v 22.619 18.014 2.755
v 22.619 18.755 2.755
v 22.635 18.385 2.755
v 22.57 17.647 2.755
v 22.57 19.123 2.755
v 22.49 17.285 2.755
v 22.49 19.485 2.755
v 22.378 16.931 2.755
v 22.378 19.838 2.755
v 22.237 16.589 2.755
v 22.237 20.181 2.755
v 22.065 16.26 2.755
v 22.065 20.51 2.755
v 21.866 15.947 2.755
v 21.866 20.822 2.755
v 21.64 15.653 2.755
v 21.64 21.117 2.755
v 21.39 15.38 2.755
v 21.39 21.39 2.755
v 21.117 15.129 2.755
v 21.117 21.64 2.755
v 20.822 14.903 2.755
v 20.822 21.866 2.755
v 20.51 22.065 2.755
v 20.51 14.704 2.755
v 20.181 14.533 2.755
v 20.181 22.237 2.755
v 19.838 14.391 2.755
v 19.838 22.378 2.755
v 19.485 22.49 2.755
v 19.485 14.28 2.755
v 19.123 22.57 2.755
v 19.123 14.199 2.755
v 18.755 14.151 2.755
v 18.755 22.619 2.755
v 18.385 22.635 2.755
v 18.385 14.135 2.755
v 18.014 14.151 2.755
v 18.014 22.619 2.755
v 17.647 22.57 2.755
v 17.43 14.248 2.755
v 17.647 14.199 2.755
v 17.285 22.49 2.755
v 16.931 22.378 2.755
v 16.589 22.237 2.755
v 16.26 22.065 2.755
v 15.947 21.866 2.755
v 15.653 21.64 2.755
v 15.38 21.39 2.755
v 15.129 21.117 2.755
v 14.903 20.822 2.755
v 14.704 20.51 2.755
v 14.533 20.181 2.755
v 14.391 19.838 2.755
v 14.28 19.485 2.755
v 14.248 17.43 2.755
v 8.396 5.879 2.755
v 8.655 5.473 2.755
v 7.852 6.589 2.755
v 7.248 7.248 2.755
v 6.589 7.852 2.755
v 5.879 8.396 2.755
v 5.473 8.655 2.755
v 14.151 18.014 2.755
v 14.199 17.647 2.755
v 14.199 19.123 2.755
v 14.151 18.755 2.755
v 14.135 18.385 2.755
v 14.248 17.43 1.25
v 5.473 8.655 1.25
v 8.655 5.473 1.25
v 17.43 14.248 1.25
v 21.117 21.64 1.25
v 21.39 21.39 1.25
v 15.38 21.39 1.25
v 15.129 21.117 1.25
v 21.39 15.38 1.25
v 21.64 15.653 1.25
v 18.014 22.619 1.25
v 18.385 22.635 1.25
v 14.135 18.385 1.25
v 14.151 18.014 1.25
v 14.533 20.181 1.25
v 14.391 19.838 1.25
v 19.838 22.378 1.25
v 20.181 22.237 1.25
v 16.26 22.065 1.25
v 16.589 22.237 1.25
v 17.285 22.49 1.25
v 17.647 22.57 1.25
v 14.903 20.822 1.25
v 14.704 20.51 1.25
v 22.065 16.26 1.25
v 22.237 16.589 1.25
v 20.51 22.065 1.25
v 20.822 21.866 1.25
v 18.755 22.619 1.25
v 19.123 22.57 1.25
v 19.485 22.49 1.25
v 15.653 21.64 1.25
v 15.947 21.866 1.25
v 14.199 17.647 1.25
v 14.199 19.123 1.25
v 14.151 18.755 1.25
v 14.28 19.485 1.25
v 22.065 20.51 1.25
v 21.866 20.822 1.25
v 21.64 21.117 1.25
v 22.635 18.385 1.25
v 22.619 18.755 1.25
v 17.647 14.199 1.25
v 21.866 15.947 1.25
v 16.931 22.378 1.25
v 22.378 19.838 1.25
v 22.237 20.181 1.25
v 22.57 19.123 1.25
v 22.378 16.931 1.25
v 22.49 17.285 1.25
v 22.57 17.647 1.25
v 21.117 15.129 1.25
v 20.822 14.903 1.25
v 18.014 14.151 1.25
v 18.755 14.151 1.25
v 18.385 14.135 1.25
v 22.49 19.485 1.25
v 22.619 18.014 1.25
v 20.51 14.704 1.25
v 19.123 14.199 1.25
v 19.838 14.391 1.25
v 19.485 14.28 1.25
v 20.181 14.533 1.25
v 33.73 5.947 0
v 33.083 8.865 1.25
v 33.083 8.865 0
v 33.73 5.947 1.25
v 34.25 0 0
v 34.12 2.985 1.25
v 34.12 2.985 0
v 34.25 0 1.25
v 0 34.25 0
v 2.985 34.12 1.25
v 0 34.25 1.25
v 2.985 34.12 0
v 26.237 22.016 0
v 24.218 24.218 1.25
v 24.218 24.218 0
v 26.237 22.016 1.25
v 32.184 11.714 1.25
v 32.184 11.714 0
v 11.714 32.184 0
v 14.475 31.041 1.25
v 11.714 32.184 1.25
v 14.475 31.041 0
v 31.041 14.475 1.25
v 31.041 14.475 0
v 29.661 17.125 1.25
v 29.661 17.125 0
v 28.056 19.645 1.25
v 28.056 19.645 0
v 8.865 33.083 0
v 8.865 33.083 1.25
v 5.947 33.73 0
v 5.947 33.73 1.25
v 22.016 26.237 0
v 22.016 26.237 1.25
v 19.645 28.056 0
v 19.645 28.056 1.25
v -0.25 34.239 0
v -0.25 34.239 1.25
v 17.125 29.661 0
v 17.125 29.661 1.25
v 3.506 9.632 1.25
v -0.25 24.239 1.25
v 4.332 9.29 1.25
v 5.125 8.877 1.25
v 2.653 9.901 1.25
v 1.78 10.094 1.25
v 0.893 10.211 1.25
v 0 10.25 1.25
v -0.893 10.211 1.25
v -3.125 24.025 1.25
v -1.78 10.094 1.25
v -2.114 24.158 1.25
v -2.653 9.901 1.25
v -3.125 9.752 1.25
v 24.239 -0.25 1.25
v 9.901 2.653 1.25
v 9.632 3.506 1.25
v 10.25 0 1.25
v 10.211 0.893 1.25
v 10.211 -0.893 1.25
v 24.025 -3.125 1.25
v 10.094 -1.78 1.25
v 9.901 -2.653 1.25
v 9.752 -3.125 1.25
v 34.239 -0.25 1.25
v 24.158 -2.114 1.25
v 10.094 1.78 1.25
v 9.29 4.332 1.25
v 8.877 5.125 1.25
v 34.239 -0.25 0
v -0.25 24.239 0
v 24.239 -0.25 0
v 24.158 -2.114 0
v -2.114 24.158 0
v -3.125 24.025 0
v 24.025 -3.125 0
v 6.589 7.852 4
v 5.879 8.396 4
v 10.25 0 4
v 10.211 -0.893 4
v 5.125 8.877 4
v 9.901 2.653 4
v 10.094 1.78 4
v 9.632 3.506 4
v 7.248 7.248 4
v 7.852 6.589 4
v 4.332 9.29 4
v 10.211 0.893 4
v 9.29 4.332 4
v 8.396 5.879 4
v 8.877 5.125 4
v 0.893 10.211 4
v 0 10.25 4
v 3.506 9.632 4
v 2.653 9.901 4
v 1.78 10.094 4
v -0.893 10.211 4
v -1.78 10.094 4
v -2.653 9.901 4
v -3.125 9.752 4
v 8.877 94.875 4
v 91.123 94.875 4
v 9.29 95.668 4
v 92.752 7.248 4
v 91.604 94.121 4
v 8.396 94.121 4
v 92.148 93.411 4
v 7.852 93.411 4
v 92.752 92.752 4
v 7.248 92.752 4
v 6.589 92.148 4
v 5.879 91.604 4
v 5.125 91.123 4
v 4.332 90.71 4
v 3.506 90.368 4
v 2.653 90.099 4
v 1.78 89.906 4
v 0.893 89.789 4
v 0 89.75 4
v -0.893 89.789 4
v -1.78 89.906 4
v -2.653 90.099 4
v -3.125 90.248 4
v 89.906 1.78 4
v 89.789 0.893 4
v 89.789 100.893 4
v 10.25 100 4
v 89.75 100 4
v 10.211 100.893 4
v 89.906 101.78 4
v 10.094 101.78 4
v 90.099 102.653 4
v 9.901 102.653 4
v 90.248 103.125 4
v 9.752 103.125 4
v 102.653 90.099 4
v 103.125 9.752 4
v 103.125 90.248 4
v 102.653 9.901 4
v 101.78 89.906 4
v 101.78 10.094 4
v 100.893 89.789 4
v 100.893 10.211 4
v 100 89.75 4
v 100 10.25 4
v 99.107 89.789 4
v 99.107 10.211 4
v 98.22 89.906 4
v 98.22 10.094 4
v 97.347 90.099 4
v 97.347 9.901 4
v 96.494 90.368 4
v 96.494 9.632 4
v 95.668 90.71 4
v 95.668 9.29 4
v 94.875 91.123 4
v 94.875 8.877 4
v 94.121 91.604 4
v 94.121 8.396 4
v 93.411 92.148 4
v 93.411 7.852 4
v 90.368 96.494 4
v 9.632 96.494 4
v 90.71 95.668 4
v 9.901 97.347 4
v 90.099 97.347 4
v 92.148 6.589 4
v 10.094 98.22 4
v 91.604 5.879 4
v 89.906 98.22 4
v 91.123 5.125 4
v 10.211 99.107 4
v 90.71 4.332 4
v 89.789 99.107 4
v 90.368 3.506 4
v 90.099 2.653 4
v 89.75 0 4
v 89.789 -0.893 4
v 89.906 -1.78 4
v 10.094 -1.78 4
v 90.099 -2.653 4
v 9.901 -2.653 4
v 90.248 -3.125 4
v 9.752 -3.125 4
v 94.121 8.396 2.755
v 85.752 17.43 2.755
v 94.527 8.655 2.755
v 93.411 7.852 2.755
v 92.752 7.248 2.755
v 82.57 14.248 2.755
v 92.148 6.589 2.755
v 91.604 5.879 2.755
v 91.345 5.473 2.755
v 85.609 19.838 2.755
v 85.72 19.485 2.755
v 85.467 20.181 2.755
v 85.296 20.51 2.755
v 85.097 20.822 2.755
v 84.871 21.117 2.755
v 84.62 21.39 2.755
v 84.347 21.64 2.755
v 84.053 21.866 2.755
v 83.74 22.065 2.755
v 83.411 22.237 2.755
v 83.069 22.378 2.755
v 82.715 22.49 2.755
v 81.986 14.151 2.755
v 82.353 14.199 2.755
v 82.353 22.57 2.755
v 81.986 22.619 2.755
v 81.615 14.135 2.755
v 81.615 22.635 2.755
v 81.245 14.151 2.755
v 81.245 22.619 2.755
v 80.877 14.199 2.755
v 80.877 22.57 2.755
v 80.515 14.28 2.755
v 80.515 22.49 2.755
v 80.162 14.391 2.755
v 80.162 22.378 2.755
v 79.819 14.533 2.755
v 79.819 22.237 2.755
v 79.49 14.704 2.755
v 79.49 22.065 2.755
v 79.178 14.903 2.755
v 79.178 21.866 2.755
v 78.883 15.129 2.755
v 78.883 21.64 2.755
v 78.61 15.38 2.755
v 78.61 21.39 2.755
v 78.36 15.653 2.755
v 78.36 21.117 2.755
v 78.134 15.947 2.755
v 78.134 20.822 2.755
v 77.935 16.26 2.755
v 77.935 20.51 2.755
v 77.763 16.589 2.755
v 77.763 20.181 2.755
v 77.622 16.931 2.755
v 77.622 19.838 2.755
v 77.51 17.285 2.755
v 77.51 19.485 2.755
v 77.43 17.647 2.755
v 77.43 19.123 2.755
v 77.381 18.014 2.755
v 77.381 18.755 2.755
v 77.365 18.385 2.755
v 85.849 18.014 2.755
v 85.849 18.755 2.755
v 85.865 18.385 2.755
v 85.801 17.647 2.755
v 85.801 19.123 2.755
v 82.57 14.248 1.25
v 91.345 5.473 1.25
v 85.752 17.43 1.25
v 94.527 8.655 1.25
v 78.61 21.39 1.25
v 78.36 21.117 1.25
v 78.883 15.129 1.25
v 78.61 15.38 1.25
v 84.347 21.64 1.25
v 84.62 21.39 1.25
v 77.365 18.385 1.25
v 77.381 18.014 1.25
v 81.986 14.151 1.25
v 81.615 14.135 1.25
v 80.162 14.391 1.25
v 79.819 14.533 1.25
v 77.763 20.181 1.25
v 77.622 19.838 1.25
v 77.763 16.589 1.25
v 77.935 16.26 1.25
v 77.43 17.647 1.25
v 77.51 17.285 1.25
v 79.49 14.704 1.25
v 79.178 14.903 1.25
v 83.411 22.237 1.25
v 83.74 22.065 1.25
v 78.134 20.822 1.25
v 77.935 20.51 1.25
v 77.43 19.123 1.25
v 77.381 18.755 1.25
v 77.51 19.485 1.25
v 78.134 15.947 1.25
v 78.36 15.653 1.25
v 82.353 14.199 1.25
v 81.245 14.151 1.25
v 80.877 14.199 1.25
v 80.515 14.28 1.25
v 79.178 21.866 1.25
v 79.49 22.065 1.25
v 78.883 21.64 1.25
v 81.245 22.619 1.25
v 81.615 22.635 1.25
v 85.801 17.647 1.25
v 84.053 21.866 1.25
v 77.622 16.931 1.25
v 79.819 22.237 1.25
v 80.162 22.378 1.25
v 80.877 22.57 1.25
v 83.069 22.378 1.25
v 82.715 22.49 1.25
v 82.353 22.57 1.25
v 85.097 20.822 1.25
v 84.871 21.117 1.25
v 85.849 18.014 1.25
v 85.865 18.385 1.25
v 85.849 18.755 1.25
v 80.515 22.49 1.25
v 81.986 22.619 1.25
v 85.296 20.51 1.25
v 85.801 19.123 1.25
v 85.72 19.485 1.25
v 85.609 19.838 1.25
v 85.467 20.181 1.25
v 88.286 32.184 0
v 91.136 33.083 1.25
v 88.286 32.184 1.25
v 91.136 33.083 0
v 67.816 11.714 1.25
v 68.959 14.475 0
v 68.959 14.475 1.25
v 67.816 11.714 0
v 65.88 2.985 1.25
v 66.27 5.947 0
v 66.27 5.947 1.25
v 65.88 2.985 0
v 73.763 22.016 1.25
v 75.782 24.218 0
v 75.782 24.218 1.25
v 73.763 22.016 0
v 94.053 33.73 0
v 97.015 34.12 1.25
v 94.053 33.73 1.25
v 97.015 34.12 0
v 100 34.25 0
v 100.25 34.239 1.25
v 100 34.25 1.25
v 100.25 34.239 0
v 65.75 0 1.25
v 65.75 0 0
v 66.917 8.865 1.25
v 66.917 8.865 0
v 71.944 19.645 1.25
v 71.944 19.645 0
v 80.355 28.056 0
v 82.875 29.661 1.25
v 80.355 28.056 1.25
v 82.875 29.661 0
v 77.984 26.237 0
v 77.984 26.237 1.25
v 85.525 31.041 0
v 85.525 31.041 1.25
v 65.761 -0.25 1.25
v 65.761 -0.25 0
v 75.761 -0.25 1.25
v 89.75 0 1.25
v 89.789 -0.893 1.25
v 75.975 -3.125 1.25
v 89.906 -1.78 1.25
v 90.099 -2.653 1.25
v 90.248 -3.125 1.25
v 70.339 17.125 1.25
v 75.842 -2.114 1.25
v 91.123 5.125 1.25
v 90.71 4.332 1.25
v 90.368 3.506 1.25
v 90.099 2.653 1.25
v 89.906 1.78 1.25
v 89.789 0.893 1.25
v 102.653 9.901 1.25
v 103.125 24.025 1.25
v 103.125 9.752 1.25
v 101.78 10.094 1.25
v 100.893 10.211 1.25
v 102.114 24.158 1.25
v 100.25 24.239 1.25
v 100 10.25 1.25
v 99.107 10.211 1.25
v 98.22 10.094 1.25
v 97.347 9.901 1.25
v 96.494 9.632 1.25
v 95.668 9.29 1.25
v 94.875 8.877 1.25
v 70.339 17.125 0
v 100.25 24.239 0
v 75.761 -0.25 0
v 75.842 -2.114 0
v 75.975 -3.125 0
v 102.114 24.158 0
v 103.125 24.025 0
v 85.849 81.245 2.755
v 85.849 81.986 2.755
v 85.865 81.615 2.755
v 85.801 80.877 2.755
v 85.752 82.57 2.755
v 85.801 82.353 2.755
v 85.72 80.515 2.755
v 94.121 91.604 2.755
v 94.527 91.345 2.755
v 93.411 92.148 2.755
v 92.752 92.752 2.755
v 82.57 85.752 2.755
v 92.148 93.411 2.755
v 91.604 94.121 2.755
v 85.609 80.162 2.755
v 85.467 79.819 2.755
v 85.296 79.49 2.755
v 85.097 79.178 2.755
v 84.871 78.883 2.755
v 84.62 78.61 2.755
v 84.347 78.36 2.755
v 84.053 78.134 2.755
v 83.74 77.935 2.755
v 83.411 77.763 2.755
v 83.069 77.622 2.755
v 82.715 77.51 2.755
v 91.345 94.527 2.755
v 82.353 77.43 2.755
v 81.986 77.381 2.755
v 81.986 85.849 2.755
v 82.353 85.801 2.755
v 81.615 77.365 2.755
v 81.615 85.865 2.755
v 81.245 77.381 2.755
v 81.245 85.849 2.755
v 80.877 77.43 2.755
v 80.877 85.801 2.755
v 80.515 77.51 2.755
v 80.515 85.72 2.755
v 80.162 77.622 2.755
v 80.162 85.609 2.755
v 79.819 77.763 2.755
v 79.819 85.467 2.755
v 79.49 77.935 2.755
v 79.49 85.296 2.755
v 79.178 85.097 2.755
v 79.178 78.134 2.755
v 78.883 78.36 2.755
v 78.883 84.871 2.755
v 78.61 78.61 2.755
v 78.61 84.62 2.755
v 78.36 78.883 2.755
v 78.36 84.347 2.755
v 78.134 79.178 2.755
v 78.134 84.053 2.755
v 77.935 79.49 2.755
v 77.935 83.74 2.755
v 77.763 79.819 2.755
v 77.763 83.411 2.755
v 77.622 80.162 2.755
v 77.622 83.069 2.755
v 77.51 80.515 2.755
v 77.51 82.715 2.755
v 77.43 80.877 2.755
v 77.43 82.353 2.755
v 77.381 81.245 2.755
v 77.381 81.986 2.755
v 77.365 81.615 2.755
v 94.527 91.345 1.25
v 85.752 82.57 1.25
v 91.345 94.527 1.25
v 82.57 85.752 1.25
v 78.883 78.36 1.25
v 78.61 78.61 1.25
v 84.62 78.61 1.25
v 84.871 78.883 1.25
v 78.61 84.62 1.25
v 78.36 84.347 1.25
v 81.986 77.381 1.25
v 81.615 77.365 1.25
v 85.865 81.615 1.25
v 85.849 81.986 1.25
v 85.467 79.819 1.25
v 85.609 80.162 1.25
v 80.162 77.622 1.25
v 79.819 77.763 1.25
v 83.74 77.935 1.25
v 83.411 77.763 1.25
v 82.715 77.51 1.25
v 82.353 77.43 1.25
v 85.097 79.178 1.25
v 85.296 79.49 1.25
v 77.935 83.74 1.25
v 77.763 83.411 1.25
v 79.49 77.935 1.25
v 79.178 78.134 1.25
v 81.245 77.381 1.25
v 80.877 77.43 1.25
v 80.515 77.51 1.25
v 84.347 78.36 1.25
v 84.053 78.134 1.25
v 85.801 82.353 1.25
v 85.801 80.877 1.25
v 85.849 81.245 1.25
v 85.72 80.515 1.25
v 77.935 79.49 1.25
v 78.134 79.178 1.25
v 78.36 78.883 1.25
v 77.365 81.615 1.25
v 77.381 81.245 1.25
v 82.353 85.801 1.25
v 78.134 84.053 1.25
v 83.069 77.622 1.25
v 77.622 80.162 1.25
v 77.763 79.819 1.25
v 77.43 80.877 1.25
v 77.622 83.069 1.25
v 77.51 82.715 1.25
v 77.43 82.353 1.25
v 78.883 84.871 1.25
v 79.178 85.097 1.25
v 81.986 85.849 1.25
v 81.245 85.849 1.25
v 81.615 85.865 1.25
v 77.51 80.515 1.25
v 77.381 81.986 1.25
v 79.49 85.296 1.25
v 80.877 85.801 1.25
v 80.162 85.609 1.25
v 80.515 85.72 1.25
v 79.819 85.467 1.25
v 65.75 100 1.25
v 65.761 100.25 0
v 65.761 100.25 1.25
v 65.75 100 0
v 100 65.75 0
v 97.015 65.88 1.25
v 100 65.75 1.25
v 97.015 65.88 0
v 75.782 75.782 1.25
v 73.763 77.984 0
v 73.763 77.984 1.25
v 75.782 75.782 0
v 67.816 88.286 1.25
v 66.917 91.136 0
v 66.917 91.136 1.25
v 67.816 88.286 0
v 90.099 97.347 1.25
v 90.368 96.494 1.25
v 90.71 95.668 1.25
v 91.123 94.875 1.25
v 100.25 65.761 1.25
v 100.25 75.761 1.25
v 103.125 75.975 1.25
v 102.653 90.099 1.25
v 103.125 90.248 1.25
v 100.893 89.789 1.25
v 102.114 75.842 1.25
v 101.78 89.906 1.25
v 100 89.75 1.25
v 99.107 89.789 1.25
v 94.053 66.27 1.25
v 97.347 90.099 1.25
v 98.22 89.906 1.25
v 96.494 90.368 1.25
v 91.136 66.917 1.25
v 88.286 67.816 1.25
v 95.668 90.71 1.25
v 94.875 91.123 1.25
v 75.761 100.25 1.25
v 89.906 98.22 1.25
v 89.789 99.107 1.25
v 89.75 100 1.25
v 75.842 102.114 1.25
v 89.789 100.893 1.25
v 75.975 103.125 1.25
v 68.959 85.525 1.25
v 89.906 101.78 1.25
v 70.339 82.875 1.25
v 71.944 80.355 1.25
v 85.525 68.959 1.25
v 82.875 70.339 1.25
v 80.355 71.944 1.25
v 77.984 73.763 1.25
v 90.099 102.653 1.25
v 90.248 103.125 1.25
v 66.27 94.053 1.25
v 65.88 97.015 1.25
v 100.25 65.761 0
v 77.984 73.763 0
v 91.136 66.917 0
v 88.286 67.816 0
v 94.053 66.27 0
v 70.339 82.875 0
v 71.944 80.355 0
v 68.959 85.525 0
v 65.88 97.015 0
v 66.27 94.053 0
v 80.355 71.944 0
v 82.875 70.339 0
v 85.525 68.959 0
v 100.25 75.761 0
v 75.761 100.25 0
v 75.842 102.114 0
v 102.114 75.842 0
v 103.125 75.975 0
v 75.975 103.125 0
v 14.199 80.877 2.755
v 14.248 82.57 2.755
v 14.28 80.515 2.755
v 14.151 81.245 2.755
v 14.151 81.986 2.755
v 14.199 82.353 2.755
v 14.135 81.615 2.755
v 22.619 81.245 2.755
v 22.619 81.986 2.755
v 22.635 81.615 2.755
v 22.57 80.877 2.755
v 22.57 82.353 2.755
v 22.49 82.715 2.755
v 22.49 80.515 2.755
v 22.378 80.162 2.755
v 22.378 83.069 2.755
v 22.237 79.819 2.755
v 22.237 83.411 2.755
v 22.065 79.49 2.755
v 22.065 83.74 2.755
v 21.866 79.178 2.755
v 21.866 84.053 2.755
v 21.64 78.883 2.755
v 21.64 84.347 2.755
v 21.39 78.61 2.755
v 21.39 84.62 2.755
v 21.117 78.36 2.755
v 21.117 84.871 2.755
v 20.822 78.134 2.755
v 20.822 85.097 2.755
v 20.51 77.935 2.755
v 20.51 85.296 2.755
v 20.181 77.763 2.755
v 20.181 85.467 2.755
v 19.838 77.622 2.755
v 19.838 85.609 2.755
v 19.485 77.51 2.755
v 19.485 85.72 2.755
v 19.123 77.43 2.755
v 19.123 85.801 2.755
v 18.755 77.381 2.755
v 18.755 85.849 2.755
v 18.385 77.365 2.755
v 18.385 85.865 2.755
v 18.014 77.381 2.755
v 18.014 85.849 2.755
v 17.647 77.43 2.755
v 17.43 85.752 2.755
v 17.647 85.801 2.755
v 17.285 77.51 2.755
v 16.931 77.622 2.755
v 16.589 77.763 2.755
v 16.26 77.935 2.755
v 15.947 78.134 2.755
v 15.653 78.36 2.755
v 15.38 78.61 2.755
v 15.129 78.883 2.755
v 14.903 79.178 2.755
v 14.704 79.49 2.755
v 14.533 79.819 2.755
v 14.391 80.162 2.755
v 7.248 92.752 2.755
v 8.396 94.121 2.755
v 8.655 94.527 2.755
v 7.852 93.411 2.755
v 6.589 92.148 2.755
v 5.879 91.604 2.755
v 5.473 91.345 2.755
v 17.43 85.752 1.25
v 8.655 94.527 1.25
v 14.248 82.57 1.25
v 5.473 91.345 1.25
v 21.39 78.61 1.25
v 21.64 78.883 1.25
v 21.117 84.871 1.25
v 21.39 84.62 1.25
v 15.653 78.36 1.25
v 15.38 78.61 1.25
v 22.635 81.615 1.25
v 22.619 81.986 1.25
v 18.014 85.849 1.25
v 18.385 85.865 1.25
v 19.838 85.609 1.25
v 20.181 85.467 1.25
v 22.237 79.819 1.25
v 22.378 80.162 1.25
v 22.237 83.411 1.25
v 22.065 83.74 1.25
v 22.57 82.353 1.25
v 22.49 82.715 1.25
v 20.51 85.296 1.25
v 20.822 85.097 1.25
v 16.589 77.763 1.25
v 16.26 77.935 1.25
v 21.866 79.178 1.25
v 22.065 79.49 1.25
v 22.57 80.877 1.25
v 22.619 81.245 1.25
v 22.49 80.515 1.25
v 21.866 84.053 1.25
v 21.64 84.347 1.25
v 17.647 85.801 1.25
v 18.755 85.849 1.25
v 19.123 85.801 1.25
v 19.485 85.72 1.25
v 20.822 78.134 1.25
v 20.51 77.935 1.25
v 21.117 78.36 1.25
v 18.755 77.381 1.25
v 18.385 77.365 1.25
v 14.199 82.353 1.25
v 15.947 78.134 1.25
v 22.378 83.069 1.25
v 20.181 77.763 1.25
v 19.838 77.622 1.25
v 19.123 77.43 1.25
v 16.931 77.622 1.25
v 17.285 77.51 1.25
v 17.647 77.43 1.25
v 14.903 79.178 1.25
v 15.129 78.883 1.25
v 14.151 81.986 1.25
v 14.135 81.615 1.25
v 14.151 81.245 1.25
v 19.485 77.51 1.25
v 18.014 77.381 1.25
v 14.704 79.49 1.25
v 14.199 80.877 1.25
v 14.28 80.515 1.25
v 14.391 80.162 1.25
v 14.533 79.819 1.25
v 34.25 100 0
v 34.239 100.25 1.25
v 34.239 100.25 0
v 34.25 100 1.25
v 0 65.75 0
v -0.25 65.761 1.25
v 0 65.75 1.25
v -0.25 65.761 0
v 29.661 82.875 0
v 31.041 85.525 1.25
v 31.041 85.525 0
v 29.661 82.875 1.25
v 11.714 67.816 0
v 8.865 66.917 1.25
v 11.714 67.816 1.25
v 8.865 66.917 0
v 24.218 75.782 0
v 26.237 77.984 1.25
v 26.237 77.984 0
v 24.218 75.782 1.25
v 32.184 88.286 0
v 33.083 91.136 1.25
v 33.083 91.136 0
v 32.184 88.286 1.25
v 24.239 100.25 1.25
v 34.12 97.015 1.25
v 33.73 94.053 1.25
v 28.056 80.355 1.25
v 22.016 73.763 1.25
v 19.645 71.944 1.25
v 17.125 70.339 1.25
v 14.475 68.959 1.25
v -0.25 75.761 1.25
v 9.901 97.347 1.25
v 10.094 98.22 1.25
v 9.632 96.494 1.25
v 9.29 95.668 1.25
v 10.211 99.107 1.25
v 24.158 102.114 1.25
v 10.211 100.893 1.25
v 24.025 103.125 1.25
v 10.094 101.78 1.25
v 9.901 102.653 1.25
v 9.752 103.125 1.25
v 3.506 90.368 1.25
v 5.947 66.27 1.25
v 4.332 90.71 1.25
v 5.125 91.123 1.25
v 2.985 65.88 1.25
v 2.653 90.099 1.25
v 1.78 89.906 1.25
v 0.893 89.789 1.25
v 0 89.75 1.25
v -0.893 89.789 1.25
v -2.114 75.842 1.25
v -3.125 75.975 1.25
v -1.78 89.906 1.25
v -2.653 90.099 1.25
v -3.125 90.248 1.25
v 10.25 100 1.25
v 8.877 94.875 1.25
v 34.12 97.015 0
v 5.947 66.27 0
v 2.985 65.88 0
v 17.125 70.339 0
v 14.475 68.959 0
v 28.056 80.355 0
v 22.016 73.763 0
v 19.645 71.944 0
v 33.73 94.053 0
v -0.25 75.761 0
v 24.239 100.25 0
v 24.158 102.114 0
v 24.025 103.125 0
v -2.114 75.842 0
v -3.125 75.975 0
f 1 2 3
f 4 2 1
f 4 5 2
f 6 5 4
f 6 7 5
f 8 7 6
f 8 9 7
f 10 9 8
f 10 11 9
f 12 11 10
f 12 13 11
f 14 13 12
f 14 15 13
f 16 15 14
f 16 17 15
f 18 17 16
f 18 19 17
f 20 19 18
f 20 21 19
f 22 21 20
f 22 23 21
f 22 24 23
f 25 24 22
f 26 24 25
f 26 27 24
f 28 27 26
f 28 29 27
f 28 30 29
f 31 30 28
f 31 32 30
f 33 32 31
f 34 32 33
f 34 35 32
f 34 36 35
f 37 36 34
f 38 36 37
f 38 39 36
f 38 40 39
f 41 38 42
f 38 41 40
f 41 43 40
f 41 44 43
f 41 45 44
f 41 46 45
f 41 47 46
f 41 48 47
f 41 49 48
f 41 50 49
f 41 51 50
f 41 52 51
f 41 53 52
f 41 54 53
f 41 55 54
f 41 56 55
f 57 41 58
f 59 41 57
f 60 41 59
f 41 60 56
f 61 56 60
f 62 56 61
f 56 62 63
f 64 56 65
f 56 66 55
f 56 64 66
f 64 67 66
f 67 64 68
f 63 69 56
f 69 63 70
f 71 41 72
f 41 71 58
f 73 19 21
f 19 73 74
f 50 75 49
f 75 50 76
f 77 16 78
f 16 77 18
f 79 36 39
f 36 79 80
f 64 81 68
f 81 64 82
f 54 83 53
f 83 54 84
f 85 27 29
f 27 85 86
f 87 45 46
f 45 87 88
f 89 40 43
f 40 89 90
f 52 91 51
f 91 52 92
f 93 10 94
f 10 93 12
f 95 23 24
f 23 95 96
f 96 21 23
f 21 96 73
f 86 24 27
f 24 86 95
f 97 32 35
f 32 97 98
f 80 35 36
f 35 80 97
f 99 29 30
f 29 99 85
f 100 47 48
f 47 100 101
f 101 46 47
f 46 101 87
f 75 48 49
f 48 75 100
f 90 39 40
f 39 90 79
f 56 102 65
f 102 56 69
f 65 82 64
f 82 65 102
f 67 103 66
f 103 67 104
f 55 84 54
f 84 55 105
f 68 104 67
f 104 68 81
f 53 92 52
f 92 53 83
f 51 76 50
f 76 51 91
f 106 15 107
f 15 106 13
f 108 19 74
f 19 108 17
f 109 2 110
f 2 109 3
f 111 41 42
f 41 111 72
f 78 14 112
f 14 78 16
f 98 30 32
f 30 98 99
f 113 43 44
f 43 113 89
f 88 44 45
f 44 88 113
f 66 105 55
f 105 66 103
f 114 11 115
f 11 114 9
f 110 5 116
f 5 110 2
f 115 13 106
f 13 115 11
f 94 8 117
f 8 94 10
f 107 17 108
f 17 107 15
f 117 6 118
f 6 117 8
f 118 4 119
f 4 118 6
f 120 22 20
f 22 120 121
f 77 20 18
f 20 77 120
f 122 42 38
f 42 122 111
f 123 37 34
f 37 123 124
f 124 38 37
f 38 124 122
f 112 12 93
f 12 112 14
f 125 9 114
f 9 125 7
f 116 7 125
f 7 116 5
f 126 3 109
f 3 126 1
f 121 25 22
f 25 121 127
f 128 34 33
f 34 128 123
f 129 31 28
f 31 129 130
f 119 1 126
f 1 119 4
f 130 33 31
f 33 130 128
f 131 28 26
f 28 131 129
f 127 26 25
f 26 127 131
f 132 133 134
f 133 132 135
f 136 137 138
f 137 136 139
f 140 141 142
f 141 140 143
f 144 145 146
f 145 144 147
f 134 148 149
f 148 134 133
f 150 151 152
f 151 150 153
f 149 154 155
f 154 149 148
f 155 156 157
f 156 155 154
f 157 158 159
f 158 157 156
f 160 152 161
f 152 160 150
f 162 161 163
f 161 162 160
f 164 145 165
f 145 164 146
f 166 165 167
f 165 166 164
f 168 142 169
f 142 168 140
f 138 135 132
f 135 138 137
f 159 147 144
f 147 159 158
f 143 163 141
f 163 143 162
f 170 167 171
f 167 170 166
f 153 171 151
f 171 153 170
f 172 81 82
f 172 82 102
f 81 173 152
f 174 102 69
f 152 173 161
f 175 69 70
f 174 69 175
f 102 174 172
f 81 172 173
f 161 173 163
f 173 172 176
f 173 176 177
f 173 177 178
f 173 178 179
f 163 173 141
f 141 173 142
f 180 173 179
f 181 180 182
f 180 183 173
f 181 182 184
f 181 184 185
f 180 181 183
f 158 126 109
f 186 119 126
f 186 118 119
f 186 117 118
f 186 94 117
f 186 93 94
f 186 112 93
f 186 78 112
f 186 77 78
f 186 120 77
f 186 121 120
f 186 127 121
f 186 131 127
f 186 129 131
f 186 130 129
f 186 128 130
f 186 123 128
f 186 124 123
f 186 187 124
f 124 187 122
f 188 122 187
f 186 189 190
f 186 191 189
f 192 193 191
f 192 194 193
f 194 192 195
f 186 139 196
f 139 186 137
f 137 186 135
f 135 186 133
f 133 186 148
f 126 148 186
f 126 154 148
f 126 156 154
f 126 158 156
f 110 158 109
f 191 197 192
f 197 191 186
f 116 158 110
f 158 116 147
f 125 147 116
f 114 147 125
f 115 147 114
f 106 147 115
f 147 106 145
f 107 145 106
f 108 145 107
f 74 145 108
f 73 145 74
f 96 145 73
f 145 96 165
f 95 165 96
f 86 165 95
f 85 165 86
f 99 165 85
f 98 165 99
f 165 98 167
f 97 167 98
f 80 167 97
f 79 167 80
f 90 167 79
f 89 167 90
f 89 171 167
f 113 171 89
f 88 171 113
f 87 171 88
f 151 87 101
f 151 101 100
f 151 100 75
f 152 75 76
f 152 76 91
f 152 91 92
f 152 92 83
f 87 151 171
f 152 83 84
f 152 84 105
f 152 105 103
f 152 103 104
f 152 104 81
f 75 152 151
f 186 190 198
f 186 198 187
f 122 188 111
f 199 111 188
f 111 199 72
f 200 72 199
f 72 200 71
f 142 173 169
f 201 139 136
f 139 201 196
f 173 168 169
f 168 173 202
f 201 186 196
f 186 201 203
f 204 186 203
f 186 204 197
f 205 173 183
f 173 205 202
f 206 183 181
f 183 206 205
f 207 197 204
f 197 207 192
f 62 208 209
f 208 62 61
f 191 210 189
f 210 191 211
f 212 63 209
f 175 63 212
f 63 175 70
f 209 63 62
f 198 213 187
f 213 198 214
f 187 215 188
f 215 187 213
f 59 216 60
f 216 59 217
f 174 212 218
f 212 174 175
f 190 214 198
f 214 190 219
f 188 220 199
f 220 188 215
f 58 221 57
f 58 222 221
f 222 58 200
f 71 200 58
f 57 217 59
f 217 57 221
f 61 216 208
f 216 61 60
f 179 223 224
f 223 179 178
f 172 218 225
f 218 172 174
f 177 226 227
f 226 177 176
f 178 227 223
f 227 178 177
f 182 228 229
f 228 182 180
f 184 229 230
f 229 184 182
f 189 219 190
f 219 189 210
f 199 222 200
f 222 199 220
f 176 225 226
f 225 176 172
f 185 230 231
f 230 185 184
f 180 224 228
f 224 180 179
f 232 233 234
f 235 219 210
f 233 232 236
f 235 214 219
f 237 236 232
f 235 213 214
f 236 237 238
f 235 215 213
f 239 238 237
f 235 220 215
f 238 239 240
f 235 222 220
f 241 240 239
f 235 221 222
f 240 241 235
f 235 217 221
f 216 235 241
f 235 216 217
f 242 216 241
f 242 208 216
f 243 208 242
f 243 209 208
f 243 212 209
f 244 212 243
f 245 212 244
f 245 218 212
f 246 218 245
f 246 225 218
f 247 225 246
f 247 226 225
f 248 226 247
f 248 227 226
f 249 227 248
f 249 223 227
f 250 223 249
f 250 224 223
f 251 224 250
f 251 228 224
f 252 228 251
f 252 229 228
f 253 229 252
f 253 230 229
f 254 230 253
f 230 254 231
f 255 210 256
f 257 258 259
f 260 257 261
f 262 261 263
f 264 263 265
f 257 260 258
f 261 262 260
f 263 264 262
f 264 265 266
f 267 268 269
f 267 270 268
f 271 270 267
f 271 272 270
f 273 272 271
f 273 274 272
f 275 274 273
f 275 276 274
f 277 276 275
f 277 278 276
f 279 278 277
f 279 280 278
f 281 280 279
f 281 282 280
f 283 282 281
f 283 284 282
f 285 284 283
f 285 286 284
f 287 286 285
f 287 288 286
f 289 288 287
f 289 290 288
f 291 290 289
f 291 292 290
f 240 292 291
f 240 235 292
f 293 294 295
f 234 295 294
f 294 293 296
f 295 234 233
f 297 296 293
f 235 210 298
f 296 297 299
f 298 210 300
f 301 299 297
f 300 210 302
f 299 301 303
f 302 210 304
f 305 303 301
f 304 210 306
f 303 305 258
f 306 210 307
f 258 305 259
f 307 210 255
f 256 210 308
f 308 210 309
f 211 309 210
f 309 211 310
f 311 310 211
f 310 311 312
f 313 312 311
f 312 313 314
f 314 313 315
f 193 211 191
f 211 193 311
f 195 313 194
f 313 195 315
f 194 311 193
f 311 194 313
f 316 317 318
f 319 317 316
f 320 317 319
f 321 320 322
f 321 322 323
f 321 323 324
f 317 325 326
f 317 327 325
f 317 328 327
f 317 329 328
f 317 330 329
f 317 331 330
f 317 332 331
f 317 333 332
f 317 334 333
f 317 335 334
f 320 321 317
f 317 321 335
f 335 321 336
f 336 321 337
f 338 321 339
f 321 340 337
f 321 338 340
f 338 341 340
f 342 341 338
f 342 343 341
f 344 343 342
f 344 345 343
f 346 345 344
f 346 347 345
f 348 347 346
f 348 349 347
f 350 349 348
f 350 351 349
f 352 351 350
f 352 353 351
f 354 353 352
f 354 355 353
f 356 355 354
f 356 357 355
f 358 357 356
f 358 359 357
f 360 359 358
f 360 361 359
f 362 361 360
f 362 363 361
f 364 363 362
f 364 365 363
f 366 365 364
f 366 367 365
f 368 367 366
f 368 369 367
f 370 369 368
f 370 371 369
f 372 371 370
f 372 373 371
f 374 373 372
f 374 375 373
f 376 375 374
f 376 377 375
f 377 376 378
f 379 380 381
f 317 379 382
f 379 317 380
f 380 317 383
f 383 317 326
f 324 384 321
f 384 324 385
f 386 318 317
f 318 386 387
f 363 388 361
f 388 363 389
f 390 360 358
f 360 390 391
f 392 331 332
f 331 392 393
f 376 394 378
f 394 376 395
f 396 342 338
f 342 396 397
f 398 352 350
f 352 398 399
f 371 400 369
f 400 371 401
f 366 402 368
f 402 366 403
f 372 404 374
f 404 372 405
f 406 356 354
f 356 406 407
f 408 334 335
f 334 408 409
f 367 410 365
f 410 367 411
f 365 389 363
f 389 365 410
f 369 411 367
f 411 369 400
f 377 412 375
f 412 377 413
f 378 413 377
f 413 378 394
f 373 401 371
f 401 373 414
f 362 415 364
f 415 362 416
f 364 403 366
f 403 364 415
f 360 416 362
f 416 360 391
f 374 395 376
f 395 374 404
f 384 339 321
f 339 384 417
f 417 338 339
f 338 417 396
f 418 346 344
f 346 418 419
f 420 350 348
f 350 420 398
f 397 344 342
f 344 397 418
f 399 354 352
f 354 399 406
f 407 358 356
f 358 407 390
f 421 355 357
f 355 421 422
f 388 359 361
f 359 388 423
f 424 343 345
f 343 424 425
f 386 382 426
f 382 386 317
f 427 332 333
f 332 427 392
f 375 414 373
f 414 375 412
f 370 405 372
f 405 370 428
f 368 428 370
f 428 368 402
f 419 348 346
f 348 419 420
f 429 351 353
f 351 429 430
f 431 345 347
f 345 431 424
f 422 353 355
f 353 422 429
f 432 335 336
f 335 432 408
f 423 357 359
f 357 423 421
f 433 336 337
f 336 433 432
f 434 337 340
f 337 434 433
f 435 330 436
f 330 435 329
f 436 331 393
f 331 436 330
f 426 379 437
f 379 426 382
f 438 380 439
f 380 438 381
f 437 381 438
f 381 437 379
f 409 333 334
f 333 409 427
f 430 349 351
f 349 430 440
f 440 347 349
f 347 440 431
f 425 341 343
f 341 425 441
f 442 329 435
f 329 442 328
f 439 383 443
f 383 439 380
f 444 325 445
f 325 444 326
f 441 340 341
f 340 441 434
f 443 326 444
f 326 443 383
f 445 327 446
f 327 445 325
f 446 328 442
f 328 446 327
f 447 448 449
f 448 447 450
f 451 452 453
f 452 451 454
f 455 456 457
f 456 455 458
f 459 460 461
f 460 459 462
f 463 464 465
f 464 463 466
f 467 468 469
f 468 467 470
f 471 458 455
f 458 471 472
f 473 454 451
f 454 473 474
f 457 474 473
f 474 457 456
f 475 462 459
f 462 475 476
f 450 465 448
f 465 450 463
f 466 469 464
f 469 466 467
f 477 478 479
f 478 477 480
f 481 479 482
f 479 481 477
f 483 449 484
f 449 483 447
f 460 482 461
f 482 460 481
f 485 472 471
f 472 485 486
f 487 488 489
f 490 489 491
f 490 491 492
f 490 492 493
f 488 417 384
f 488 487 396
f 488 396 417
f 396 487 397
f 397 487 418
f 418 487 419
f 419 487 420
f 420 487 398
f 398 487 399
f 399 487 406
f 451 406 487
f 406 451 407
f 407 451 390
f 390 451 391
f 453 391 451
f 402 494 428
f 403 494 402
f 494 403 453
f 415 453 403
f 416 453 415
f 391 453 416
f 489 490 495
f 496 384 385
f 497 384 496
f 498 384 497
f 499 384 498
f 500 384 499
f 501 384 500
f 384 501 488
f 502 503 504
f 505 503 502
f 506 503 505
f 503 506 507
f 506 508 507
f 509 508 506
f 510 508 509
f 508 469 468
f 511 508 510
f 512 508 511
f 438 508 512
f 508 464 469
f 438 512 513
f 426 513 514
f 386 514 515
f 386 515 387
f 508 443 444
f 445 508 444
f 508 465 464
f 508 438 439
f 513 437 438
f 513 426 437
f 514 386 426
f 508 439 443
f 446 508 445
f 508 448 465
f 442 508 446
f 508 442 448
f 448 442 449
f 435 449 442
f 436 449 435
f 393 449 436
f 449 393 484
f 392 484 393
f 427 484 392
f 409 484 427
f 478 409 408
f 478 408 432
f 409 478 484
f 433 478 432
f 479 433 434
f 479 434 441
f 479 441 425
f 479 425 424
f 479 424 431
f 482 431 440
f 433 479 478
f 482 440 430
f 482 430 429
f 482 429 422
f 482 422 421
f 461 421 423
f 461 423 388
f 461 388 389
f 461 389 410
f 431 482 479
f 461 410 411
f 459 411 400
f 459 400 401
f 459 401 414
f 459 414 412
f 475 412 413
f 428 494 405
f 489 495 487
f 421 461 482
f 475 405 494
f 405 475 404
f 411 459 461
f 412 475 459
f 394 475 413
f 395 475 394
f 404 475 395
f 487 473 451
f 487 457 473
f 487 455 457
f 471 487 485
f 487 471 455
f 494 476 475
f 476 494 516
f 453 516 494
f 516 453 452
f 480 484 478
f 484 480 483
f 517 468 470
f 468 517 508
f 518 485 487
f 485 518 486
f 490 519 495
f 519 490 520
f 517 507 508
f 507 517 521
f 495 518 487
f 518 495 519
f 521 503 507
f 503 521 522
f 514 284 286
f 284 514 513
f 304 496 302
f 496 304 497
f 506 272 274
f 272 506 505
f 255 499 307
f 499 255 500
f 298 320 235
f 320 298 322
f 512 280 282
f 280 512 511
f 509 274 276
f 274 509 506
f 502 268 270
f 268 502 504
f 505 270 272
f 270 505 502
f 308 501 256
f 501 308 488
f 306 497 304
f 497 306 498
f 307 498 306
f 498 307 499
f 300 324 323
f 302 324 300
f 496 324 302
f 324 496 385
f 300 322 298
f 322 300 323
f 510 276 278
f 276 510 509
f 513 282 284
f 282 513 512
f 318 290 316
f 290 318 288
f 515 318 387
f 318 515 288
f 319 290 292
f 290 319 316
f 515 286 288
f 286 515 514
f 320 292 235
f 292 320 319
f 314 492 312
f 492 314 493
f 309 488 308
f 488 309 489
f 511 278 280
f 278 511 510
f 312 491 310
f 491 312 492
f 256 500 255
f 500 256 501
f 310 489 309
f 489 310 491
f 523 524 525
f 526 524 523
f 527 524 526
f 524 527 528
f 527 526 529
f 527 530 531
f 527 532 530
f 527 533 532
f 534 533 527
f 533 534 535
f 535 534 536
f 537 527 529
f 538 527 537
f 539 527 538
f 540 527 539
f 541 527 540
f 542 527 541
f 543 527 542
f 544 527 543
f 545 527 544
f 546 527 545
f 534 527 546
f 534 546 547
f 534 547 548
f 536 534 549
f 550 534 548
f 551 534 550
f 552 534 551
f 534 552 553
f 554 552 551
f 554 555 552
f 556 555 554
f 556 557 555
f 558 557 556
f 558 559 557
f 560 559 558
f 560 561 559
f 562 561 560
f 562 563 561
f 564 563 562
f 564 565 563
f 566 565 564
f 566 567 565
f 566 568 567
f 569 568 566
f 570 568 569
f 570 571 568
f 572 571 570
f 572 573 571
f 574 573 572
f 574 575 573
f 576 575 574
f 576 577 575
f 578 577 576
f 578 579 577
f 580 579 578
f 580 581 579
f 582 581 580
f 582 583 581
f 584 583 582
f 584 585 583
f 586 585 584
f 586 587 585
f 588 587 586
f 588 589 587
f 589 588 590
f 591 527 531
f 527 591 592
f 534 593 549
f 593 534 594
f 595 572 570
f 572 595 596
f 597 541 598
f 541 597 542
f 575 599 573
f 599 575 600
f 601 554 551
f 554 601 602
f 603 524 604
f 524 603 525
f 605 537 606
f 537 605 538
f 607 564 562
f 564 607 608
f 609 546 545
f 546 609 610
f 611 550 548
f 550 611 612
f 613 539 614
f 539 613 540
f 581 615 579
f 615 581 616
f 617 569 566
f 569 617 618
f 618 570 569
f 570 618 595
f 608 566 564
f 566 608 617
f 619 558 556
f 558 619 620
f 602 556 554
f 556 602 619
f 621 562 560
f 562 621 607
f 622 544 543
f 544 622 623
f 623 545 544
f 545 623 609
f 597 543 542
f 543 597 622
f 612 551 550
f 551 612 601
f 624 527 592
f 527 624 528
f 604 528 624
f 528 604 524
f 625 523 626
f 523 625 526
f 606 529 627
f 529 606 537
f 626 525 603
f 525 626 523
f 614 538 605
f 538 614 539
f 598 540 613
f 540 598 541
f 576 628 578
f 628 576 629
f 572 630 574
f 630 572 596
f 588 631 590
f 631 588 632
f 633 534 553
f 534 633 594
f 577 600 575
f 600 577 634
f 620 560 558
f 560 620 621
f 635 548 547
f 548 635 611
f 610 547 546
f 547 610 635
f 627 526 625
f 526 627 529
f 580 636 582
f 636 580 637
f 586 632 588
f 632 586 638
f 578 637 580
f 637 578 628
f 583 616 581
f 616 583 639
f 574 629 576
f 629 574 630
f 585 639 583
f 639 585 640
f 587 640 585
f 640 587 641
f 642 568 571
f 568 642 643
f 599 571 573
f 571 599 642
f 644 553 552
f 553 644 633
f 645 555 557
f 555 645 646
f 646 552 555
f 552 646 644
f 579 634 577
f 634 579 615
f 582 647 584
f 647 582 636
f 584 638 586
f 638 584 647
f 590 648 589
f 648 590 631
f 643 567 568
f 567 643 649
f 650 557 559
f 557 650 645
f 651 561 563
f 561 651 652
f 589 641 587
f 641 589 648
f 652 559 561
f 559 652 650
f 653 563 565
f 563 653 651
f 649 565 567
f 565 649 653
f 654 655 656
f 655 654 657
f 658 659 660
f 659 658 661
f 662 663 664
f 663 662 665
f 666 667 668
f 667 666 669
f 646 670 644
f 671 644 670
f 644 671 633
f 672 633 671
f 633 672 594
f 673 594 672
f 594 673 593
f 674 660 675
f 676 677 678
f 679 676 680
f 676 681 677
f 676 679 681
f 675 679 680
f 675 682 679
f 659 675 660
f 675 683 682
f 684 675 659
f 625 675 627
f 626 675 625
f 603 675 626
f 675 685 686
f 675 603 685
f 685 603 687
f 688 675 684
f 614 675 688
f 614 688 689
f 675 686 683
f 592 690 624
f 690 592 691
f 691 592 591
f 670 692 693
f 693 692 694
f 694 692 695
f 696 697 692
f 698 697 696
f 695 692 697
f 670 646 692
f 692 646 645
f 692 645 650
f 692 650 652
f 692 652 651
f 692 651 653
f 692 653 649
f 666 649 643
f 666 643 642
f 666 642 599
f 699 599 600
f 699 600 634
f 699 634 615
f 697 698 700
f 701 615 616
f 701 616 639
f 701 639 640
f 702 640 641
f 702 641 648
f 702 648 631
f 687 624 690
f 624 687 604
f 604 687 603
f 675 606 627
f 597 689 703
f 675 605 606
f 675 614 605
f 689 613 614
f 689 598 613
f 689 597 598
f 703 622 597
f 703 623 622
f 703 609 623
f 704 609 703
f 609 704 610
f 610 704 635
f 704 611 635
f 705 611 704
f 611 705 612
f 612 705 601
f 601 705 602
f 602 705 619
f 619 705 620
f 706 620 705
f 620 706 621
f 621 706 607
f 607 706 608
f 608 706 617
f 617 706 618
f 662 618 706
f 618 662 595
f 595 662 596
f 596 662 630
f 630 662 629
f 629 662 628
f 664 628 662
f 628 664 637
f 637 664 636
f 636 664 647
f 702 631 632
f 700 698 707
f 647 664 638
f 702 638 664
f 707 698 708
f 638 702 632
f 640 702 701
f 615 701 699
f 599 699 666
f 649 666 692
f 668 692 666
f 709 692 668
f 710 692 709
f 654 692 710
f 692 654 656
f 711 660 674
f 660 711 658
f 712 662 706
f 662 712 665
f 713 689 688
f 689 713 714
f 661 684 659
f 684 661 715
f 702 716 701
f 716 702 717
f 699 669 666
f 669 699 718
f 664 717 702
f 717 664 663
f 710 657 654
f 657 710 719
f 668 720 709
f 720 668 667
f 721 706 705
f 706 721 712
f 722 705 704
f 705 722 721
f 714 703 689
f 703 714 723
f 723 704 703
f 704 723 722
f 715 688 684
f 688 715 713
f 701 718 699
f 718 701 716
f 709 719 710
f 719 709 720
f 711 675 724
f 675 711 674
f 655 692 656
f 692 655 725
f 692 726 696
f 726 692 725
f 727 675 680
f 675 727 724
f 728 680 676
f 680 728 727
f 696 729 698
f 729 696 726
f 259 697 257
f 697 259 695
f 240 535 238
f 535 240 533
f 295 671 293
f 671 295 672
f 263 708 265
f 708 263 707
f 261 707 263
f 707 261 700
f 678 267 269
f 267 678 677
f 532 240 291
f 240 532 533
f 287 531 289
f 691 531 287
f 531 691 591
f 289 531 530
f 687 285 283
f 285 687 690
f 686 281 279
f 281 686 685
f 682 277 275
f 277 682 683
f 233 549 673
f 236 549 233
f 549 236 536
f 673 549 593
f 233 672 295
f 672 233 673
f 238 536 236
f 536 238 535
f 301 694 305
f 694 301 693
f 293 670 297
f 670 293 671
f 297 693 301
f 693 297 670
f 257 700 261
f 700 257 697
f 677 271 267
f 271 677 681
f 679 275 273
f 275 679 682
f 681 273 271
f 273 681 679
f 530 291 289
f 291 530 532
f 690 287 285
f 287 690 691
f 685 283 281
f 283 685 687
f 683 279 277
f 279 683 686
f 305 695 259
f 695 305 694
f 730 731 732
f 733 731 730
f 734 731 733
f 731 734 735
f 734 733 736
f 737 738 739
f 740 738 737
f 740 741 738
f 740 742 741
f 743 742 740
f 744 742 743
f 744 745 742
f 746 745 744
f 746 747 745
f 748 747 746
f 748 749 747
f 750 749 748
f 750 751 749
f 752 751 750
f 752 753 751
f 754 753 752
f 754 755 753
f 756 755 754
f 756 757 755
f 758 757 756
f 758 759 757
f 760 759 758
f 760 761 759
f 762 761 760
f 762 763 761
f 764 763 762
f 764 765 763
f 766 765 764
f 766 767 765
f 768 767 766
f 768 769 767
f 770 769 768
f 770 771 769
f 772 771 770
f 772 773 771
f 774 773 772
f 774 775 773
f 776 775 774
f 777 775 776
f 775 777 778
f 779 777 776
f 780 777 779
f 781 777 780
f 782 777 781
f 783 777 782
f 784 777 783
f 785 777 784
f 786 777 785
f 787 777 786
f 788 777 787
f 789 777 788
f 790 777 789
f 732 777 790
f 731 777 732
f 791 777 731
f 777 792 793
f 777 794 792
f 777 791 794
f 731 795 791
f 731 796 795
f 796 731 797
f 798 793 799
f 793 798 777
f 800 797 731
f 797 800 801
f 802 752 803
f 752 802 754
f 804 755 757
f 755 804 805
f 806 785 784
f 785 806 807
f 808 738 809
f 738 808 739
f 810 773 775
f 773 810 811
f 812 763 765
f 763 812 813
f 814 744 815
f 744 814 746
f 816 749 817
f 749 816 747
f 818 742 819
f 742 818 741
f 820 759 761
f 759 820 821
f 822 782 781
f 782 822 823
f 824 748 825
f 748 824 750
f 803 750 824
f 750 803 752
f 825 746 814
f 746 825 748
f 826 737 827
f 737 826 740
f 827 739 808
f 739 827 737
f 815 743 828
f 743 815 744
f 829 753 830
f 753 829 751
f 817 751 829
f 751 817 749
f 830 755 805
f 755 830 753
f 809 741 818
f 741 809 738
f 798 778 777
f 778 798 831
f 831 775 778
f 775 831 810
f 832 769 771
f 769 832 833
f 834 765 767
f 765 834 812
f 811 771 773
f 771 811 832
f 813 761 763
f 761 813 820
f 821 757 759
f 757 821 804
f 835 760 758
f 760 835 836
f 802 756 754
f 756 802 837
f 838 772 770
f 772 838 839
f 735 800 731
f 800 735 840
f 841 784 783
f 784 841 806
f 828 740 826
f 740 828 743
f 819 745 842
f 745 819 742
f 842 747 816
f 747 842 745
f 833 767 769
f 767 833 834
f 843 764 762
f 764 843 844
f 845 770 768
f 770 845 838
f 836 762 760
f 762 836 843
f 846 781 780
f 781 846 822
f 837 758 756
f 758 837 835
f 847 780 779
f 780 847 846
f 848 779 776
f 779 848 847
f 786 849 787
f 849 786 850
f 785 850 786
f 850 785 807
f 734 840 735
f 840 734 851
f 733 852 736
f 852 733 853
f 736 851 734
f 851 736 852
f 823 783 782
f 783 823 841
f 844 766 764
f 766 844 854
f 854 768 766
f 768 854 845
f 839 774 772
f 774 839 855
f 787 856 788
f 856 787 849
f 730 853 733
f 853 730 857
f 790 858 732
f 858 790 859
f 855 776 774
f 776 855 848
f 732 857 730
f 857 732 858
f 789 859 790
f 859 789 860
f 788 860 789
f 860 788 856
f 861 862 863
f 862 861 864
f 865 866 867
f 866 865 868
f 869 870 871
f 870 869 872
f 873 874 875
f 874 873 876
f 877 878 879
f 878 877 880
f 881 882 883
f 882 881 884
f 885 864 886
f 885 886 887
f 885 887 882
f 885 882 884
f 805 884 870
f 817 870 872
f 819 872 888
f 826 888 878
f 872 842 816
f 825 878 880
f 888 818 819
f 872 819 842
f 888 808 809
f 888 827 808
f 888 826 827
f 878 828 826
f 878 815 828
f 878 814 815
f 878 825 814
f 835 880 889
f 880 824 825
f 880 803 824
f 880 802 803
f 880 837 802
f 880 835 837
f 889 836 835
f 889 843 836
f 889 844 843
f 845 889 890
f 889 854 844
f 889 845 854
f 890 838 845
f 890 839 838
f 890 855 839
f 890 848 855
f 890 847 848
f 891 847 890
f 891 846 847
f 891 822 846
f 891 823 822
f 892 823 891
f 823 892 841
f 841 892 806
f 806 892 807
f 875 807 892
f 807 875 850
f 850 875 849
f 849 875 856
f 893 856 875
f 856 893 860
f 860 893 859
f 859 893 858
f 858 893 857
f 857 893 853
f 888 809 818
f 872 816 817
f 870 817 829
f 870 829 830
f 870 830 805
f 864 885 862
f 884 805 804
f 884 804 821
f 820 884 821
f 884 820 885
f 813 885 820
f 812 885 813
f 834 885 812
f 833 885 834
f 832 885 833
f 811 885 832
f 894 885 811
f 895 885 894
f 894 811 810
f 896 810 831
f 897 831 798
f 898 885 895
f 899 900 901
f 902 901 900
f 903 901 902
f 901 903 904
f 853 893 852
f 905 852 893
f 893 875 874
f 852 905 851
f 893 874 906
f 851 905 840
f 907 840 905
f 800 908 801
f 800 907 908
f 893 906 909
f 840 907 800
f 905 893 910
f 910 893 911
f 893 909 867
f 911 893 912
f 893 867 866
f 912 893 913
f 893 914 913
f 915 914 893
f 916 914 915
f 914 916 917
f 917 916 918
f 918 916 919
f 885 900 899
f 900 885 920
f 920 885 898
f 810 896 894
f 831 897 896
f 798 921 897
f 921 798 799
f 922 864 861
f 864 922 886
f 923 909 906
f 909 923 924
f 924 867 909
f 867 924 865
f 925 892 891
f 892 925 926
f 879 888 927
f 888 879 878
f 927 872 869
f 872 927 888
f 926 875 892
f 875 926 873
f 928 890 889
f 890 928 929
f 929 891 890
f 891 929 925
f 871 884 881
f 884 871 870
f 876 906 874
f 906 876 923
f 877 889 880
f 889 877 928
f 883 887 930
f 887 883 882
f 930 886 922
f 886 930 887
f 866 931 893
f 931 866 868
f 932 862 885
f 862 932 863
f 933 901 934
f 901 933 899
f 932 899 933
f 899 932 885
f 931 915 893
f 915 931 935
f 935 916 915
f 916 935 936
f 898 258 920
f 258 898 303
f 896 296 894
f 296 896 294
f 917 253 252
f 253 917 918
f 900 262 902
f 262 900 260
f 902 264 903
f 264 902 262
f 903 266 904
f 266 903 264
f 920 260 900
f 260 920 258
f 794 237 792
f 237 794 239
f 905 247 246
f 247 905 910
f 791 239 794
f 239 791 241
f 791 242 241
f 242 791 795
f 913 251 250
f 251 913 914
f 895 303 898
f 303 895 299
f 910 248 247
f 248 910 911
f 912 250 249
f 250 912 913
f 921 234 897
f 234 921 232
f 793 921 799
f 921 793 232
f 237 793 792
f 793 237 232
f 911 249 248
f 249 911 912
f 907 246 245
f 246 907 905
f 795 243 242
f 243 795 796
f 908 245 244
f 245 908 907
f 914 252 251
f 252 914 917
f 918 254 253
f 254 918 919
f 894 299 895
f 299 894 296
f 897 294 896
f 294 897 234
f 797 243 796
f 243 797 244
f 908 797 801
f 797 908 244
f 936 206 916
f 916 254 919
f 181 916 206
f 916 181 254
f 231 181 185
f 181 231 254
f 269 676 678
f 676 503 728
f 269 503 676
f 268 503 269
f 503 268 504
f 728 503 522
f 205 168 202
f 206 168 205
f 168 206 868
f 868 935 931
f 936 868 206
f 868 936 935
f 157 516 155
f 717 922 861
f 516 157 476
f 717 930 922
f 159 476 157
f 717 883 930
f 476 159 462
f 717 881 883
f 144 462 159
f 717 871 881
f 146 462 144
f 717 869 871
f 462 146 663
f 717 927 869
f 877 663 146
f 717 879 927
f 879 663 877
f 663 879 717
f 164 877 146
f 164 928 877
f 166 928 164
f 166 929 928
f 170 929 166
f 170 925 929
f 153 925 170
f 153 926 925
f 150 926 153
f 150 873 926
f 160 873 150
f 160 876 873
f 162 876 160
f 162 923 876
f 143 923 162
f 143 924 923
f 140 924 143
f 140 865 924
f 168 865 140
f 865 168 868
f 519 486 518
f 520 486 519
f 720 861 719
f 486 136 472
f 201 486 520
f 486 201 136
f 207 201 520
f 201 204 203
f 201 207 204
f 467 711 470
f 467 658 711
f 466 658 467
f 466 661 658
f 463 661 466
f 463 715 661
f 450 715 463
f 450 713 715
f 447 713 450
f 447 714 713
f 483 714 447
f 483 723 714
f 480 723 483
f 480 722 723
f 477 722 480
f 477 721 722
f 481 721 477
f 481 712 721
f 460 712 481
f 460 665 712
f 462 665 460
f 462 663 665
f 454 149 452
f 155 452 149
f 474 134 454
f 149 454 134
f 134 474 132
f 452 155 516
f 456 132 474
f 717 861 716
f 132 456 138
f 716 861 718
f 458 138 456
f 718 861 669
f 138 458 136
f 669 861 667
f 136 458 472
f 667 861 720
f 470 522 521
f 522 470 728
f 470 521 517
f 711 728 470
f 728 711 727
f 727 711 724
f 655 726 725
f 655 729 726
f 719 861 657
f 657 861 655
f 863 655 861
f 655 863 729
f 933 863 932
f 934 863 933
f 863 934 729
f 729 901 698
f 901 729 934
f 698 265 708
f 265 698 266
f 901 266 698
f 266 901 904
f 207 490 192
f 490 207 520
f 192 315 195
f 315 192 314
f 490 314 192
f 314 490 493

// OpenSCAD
difference(){
	translate([0.00, 0.00, 2.00]){
	scale([1.000, 1.000, 4.000]){
	linear_extrude(1.00, center = true){
offset(delta = -0.125){polygon([[-3.25,-3.25], [103.25,-3.25], [103.25,103.25], [-3.25,103.25]],10);
}}}}	translate([0.00, 0.00, 0.00]){
	union(){
	rotate(45.00,[0,0,1]){
	translate([11.00, 0.00, 1.50]){
	union(){
	translate([0.00, 0.00, 0.13]){
	cube([22.00,4.50,2.25], true);
}	translate([15.00, 0.00, 0.00]){
	translate([0.00, 0.00, 0.13]){
	cylinder(h = 2.250, r = 4.250, center = true, $fa = 5, $fs = 0.01);
}}	translate([11.00, 0.00, 0.00]){
	translate([0.00, 0.00, 0.13]){
	cube([1.00,4.50,2.25], true);
}}}}}	intersection(){
	translate([0.00, 0.00, 0.50]){
	translate([0.00, 0.00, 0.00]){
	cylinder(h = 1.500, r = 34.250, center = true, $fa = 5, $fs = 0.01);
}}	translate([-0.00, -0.00, 0.00]){
	scale([1.000, 1.000, 8.000]){
	linear_extrude(1.00, center = true){
offset(delta = 0.250){polygon([[0.0,0.0], [100.0,0.0], [100.0,100.0], [0.0,100.0]],10);
}}}}}	translate([0.00, 0.00, 0.50]){
	translate([0.00, 0.00, 0.00]){
	cylinder(h = 1.500, r = 24.250, center = true, $fa = 5, $fs = 0.01);
}}	translate([0.00, 0.00, 2.00]){
	translate([0.00, 0.00, 0.00]){
	cylinder(h = 4.000, r = 10.250, center = true, $fa = 5, $fs = 0.01);
}}}}	translate([100.00, 0.00, 0.00]){
	union(){
	rotate(135.00,[0,0,1]){
	translate([11.00, 0.00, 1.50]){
	union(){
	translate([0.00, 0.00, 0.13]){
	cube([22.00,4.50,2.25], true);
}	translate([15.00, 0.00, 0.00]){
	translate([0.00, 0.00, 0.13]){
	cylinder(h = 2.250, r = 4.250, center = true, $fa = 5, $fs = 0.01);
}}	translate([11.00, 0.00, 0.00]){
	translate([0.00, 0.00, 0.13]){
	cube([1.00,4.50,2.25], true);
}}}}}	intersection(){
	translate([0.00, 0.00, 0.50]){
	translate([0.00, 0.00, 0.00]){
	cylinder(h = 1.500, r = 34.250, center = true, $fa = 5, $fs = 0.01);
}}	translate([-100.00, -0.00, 0.00]){
	scale([1.000, 1.000, 8.000]){
	linear_extrude(1.00, center = true){
offset(delta = 0.250){polygon([[0.0,0.0], [100.0,0.0], [100.0,100.0], [0.0,100.0]],10);
}}}}}	translate([0.00, 0.00, 0.50]){
	translate([0.00, 0.00, 0.00]){
	cylinder(h = 1.500, r = 24.250, center = true, $fa = 5, $fs = 0.01);
}}	translate([0.00, 0.00, 2.00]){
	translate([0.00, 0.00, 0.00]){
	cylinder(h = 4.000, r = 10.250, center = true, $fa = 5, $fs = 0.01);
}}}}	translate([100.00, 100.00, 0.00]){
	union(){
	rotate(225.00,[0,0,1]){
	translate([11.00, 0.00, 1.50]){
	union(){
	translate([0.00, 0.00, 0.13]){
	cube([22.00,4.50,2.25], true);
}	translate([15.00, 0.00, 0.00]){
	translate([0.00, 0.00, 0.13]){
	cylinder(h = 2.250, r = 4.250, center = true, $fa = 5, $fs = 0.01);
}}	translate([11.00, 0.00, 0.00]){
	translate([0.00, 0.00, 0.13]){
	cube([1.00,4.50,2.25], true);
}}}}}	intersection(){
	translate([0.00, 0.00, 0.50]){
	translate([0.00, 0.00, 0.00]){
	cylinder(h = 1.500, r = 34.250, center = true, $fa = 5, $fs = 0.01);
}}	translate([-100.00, -100.00, 0.00]){
	scale([1.000, 1.000, 8.000]){
	linear_extrude(1.00, center = true){
offset(delta = 0.250){polygon([[0.0,0.0], [100.0,0.0], [100.0,100.0], [0.0,100.0]],10);
}}}}}	translate([0.00, 0.00, 0.50]){
	translate([0.00, 0.00, 0.00]){
	cylinder(h = 1.500, r = 24.250, center = true, $fa = 5, $fs = 0.01);
}}	translate([0.00, 0.00, 2.00]){
	translate([0.00, 0.00, 0.00]){
	cylinder(h = 4.000, r = 10.250, center = true, $fa = 5, $fs = 0.01);
}}}}	translate([0.00, 100.00, 0.00]){
	union(){
	rotate(-45.00,[0,0,1]){
	translate([11.00, 0.00, 1.50]){
	union(){
	translate([0.00, 0.00, 0.13]){
	cube([22.00,4.50,2.25], true);
}	translate([15.00, 0.00, 0.00]){
	translate([0.00, 0.00, 0.13]){
	cylinder(h = 2.250, r = 4.250, center = true, $fa = 5, $fs = 0.01);
}}	translate([11.00, 0.00, 0.00]){
	translate([0.00, 0.00, 0.13]){
	cube([1.00,4.50,2.25], true);
}}}}}	intersection(){
	translate([0.00, 0.00, 0.50]){
	translate([0.00, 0.00, 0.00]){
	cylinder(h = 1.500, r = 34.250, center = true, $fa = 5, $fs = 0.01);
}}	translate([-0.00, -100.00, 0.00]){
	scale([1.000, 1.000, 8.000]){
	linear_extrude(1.00, center = true){
offset(delta = 0.250){polygon([[0.0,0.0], [100.0,0.0], [100.0,100.0], [0.0,100.0]],10);
}}}}}	translate([0.00, 0.00, 0.50]){
	translate([0.00, 0.00, 0.00]){
	cylinder(h = 1.500, r = 24.250, center = true, $fa = 5, $fs = 0.01);
}}	translate([0.00, 0.00, 2.00]){
	translate([0.00, 0.00, 0.00]){
	cylinder(h = 4.000, r = 10.250, center = true, $fa = 5, $fs = 0.01);
}}}}}
